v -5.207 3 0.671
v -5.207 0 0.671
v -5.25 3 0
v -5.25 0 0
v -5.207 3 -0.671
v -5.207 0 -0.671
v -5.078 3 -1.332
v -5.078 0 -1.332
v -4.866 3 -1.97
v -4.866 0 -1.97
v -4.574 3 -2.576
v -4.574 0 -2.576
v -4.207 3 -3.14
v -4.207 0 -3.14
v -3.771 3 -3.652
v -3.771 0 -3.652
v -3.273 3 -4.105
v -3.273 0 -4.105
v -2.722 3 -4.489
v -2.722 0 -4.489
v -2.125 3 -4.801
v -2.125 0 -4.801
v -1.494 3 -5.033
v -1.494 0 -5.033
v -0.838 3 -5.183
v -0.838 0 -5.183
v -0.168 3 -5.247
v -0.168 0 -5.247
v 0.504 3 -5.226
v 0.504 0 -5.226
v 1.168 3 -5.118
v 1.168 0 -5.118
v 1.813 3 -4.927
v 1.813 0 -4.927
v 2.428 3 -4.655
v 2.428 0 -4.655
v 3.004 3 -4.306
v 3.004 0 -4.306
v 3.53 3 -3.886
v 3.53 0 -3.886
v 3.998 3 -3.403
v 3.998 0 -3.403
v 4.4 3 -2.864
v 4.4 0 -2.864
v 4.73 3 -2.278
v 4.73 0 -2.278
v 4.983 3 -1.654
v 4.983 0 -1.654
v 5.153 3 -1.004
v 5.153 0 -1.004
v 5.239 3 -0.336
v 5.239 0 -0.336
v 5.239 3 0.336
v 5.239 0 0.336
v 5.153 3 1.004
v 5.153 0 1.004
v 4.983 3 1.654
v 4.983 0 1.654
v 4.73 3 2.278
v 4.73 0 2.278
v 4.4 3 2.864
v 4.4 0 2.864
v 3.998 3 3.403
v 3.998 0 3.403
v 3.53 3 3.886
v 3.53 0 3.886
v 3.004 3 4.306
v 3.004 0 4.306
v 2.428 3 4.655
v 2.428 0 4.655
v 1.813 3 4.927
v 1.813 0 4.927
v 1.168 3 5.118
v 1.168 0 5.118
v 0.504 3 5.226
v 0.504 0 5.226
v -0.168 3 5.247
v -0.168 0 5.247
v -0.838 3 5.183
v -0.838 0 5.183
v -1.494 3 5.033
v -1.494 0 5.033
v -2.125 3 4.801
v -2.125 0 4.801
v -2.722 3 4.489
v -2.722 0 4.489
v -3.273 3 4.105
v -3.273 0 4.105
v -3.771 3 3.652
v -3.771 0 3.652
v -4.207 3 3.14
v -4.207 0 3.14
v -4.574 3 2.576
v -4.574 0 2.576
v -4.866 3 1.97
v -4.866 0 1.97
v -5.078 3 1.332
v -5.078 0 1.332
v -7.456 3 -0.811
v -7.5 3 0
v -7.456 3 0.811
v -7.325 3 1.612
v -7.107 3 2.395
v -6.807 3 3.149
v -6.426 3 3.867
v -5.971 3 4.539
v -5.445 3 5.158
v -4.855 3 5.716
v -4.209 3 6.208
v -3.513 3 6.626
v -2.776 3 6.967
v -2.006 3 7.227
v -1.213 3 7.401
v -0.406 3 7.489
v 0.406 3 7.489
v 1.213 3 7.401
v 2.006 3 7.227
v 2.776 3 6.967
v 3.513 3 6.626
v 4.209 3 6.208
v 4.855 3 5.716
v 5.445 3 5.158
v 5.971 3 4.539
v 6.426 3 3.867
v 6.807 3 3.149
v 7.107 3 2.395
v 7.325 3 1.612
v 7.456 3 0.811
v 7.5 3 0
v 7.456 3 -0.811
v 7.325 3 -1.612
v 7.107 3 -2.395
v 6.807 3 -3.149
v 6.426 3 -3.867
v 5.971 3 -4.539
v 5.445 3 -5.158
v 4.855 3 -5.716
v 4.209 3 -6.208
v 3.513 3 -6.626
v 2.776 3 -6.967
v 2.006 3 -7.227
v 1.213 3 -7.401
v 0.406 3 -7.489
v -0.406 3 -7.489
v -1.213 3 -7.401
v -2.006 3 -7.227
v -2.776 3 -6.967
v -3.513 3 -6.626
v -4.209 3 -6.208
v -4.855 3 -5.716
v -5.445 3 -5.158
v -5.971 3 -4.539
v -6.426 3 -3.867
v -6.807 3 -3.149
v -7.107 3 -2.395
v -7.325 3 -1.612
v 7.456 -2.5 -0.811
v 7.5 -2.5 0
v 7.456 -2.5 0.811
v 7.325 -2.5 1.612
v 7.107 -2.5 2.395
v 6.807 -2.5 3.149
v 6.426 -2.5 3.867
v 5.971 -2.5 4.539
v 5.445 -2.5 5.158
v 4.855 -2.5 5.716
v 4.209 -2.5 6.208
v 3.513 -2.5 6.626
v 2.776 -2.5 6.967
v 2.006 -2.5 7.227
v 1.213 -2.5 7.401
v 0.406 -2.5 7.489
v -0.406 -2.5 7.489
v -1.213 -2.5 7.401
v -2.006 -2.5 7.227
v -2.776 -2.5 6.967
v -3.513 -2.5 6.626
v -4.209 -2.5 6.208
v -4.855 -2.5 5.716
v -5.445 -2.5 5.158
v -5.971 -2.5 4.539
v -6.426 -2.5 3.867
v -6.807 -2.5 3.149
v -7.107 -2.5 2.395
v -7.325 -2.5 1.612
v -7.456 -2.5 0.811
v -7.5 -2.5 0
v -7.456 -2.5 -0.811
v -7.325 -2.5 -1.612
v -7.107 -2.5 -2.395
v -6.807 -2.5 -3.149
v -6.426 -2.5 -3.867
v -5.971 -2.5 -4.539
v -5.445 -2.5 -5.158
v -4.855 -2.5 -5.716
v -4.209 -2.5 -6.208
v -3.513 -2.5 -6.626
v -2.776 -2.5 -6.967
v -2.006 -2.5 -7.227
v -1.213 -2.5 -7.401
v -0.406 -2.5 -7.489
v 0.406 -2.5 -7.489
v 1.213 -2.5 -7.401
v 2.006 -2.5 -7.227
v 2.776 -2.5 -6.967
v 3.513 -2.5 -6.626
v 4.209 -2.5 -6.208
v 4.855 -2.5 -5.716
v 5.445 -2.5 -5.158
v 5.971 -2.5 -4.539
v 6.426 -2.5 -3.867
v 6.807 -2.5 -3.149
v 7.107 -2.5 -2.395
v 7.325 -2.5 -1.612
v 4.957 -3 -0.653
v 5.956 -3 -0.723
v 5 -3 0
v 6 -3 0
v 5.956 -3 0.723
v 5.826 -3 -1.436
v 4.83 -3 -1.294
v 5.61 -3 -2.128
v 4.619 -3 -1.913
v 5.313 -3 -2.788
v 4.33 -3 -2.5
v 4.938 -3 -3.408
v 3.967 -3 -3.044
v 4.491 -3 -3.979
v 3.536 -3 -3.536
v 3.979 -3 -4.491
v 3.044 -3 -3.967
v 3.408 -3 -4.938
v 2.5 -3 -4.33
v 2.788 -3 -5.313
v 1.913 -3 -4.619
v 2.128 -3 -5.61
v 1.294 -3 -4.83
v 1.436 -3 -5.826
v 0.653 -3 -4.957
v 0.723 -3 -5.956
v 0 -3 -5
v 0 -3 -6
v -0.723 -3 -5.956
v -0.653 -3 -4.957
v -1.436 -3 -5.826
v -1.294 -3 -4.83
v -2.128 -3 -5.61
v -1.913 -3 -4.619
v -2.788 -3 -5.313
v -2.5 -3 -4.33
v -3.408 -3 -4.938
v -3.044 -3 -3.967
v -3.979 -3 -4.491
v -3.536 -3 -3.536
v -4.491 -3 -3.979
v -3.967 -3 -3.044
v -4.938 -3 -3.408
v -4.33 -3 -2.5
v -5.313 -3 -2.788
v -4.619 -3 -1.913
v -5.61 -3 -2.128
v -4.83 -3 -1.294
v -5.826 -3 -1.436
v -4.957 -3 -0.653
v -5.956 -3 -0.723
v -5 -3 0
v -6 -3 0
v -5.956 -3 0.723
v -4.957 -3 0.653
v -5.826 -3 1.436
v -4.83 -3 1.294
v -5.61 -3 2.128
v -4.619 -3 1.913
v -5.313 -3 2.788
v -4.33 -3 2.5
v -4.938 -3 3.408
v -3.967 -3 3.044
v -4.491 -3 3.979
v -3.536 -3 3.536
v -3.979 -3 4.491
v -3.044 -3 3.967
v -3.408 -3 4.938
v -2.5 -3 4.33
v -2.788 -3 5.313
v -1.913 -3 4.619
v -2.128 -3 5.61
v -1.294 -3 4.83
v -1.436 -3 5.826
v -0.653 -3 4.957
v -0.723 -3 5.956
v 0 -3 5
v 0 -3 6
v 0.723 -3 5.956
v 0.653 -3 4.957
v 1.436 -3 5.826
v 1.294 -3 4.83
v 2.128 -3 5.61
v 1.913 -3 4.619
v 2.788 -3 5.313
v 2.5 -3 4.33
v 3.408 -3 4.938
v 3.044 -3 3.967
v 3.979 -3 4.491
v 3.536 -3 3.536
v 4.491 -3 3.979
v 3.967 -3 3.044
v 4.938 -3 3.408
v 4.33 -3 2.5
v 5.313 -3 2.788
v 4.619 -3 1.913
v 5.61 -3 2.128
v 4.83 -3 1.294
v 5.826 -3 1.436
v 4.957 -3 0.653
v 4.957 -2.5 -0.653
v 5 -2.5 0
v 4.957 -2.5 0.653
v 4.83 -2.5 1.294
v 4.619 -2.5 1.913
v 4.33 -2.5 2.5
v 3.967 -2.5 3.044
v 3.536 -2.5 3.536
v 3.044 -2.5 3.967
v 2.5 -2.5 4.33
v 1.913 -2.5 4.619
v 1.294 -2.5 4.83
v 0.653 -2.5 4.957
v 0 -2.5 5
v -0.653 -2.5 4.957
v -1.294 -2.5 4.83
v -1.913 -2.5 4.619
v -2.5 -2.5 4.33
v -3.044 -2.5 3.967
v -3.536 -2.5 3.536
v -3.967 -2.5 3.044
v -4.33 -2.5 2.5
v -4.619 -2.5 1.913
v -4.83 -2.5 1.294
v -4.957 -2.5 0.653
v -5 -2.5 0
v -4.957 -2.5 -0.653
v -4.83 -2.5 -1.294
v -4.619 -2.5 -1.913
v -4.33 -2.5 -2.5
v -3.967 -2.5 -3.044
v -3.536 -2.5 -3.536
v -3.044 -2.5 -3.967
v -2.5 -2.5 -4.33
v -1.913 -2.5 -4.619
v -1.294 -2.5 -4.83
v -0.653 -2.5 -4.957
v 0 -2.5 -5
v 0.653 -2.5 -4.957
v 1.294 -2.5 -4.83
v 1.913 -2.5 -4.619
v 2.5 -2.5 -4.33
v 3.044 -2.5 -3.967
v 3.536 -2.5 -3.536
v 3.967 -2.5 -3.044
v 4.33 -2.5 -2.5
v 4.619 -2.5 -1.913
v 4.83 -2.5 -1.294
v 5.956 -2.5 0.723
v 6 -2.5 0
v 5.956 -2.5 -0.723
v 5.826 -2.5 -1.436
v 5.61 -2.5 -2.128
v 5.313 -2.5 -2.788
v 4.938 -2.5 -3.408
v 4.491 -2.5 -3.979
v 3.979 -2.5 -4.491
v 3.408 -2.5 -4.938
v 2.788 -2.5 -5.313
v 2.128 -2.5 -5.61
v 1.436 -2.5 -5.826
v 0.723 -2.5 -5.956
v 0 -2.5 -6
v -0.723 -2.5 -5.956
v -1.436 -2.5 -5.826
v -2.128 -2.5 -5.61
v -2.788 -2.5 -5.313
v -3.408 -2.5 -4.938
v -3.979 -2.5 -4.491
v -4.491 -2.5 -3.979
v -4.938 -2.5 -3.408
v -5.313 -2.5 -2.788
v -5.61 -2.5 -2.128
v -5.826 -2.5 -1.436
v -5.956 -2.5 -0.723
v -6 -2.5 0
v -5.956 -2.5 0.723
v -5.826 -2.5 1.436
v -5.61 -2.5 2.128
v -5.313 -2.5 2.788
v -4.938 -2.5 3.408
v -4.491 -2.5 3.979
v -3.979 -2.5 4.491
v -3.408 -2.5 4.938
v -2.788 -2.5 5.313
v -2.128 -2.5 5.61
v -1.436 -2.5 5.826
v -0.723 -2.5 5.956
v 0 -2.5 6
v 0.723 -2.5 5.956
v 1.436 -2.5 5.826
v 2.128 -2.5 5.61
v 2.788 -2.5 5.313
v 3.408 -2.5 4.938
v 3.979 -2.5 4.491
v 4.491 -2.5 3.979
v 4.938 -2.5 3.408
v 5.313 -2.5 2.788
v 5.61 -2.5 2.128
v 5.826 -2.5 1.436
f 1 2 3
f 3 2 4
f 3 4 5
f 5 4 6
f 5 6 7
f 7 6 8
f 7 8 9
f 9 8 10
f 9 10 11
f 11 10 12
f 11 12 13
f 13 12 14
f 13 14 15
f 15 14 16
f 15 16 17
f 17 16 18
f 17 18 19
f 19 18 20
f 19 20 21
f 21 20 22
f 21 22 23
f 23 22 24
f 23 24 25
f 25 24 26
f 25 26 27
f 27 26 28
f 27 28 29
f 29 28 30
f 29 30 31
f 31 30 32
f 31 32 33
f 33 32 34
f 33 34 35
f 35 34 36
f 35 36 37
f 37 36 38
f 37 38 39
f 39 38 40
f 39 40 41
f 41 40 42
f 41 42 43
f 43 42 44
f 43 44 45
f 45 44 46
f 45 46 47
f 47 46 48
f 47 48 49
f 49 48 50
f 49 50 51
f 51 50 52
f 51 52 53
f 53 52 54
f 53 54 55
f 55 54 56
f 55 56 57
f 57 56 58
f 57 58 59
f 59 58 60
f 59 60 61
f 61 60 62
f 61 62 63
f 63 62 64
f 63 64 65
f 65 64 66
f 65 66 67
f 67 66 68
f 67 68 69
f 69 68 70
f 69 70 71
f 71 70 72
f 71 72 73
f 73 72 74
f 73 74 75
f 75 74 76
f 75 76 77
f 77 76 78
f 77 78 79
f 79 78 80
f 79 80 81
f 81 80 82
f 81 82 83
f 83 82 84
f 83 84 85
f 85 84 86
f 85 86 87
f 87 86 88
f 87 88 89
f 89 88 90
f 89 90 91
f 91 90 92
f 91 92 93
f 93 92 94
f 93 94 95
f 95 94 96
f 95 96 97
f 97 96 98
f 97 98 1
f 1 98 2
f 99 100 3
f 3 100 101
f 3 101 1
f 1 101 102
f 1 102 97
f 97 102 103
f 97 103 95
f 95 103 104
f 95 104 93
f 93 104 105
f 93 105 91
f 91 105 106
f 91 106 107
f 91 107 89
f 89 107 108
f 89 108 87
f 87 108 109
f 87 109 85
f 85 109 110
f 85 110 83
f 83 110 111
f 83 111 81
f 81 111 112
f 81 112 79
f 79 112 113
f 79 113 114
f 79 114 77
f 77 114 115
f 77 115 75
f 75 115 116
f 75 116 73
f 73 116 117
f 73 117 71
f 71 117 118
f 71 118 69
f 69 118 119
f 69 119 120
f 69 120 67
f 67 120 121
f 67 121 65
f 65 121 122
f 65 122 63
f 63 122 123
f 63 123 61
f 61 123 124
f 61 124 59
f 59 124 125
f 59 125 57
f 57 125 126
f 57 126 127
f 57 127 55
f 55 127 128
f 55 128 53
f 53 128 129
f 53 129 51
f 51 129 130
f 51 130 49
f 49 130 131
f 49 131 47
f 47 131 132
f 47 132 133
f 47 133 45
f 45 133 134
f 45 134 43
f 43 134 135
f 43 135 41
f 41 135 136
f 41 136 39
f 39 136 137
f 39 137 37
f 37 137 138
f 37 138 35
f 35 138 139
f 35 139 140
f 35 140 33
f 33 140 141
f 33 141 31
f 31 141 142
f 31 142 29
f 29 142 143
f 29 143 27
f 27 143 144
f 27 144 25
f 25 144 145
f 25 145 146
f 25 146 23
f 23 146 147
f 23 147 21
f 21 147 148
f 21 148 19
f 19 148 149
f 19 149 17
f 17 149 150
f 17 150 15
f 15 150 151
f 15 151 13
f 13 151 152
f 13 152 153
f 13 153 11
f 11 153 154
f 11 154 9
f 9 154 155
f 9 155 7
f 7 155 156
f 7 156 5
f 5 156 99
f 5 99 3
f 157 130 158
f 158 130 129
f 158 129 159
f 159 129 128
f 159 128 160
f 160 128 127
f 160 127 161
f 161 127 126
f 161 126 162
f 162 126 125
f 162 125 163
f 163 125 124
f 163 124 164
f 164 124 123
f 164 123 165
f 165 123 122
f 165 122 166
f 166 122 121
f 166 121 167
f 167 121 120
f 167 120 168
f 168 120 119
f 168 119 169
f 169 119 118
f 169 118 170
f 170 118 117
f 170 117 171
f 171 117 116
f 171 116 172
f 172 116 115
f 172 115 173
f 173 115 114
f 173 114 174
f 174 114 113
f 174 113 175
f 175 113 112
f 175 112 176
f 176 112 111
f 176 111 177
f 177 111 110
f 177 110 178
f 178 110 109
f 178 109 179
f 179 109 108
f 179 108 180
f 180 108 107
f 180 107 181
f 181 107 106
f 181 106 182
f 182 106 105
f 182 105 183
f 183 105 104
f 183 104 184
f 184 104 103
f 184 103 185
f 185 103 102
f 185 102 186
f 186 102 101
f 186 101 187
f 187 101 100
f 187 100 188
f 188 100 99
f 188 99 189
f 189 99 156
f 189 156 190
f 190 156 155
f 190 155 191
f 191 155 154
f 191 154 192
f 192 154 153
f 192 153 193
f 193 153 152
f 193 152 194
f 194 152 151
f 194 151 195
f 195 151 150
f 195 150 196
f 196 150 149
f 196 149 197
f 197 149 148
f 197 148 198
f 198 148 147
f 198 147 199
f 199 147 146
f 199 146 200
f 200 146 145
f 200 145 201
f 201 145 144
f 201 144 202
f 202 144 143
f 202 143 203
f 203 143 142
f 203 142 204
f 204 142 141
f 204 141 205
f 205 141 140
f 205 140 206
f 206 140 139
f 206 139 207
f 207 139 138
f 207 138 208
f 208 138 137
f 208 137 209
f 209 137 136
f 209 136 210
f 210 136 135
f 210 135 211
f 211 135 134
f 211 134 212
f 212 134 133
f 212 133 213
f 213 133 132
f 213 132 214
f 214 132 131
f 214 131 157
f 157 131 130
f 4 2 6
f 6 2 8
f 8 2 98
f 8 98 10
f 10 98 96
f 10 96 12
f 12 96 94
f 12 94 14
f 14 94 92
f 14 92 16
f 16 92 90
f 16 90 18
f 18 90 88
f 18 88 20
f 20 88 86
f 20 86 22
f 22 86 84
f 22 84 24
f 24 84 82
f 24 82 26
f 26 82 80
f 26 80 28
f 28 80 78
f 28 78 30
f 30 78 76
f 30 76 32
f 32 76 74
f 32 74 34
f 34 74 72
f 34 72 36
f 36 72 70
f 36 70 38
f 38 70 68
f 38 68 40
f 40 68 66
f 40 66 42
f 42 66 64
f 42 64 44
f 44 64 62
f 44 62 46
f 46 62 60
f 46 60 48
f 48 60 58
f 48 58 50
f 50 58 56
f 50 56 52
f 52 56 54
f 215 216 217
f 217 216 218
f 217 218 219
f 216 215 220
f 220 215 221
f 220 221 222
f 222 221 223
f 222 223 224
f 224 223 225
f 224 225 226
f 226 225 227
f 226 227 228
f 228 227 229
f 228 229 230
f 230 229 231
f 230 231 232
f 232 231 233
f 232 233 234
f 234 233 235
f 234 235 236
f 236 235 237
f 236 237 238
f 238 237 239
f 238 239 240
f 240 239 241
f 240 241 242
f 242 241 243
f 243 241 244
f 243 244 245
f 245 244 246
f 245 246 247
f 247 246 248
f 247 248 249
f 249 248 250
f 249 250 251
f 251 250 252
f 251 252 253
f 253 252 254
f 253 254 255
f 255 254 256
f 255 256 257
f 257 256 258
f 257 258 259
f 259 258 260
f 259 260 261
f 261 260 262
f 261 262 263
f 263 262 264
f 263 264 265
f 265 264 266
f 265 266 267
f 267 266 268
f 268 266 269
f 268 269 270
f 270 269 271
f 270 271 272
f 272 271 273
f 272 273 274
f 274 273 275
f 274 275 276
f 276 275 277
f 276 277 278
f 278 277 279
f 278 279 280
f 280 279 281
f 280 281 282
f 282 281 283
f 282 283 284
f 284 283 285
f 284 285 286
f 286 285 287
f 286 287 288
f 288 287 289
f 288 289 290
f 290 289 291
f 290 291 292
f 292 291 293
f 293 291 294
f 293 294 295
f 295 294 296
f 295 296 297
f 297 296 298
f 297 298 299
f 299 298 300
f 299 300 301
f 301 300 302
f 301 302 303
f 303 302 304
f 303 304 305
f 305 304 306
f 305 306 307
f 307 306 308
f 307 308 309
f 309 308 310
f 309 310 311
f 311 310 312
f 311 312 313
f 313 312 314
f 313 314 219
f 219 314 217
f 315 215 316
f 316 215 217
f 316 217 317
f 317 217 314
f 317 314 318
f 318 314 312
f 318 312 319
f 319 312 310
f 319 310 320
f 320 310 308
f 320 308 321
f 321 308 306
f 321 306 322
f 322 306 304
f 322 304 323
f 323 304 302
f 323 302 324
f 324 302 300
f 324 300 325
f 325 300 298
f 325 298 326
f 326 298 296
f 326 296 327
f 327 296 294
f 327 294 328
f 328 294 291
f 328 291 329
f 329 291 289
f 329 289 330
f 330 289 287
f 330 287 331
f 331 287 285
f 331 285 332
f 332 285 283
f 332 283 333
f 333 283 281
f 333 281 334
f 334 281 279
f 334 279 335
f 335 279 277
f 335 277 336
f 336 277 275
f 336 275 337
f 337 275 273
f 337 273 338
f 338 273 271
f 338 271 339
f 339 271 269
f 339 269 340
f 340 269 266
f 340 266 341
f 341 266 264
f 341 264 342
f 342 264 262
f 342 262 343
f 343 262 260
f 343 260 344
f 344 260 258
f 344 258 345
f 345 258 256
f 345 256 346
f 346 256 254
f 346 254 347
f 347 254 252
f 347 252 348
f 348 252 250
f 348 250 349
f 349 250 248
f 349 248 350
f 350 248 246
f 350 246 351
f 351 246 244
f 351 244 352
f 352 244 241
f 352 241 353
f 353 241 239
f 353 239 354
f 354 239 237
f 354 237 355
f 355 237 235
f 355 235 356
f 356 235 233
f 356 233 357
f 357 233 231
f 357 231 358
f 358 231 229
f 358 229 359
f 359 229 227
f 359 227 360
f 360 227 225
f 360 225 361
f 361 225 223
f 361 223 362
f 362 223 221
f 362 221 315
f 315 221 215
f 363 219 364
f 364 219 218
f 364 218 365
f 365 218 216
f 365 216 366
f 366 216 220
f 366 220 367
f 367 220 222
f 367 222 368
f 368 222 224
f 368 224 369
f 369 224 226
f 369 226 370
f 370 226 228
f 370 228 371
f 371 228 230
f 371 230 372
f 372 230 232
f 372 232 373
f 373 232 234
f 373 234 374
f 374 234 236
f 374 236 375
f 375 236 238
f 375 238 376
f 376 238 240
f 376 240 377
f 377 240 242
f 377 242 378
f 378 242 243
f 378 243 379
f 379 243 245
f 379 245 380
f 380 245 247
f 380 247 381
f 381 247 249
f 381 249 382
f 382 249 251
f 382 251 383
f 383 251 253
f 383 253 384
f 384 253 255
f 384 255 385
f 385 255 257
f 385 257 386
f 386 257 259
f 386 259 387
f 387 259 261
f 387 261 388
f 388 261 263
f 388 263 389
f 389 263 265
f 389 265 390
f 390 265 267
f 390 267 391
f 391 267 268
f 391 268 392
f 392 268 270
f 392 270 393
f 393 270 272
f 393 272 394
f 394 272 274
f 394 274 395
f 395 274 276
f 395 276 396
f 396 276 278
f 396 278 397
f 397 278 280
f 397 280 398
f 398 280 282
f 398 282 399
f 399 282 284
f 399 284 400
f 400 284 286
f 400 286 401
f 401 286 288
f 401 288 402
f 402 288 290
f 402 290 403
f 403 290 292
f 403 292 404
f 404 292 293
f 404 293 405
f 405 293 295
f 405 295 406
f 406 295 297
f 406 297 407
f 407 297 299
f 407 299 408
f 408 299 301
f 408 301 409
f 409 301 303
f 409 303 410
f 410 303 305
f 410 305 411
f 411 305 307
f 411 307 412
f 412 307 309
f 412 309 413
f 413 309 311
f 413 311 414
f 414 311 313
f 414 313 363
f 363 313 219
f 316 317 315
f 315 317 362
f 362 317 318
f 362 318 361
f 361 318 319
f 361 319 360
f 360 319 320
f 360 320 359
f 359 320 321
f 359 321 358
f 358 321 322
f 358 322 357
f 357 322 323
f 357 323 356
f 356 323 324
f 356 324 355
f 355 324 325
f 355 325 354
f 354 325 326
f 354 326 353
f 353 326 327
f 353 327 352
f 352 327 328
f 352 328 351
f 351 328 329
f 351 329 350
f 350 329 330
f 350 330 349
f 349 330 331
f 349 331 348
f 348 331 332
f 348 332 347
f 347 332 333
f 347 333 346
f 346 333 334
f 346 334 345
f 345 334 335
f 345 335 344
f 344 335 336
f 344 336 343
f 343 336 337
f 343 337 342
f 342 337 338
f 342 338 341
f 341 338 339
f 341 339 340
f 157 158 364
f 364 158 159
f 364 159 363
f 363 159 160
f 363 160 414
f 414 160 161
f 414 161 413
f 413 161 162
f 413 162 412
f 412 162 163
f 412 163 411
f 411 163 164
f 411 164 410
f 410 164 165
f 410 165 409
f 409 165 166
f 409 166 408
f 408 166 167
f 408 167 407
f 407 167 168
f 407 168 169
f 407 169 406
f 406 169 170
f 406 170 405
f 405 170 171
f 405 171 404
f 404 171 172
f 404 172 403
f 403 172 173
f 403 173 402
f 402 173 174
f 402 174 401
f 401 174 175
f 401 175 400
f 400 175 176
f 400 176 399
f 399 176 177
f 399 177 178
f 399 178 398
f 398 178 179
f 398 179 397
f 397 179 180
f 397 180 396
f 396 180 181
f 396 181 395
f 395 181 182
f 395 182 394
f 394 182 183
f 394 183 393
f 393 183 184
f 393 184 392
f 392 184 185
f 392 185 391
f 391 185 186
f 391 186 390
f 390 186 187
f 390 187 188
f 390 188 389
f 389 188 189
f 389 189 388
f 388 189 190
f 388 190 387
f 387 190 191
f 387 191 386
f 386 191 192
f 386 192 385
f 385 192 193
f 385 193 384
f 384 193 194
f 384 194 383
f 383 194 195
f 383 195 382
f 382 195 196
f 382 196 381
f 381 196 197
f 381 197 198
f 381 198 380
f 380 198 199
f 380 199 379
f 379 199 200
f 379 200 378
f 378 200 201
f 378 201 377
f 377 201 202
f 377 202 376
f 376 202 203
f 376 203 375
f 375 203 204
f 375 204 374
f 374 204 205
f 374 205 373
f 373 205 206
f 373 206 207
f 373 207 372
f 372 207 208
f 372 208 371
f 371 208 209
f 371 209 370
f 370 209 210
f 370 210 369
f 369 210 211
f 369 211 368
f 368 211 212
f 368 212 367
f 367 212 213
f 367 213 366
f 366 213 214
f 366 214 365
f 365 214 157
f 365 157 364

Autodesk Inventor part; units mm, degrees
ref_plane "YZ Plane" through (0, 0, 0) normal (1, 0, 0) x (0, 1, 0)
ref_plane "XZ Plane" through (0, 0, 0) normal (0, 1, 0) x (-1, 0, 0)
ref_plane "XY Plane" through (0, 0, 0) normal (0, 0, 1) x (1, 0, 0)
sketch "스케치1" plane through (0, 0, 0) normal (0, 1, 0) x (-1, 0, 0)
  circle A0 centre (0, 0) radius 7.5
  circle A1 centre (0, 0) radius 5.25
  dimension "d0" = 15
  dimension "d1" = 10.5
extrude "돌출1" add sketch "스케치1" against normal blind 3 contours A0 | A1
extrude "돌출2" add sketch "스케치1" along normal blind 3
sketch "스케치2" plane through (0, -3, 0) normal (0, -1, 0) x (1, 0, 0)
  circle A0 centre (0, 0) radius 5
  circle A1 centre (0, 0) radius 6
  circle A2 centre (0, 0) radius 7.5 projected
  dimension "d6" = 10
  dimension "d7" = 12
extrude "돌출3" cut sketch "스케치2" against normal blind 0.5
properties part number "나사 회전축"
